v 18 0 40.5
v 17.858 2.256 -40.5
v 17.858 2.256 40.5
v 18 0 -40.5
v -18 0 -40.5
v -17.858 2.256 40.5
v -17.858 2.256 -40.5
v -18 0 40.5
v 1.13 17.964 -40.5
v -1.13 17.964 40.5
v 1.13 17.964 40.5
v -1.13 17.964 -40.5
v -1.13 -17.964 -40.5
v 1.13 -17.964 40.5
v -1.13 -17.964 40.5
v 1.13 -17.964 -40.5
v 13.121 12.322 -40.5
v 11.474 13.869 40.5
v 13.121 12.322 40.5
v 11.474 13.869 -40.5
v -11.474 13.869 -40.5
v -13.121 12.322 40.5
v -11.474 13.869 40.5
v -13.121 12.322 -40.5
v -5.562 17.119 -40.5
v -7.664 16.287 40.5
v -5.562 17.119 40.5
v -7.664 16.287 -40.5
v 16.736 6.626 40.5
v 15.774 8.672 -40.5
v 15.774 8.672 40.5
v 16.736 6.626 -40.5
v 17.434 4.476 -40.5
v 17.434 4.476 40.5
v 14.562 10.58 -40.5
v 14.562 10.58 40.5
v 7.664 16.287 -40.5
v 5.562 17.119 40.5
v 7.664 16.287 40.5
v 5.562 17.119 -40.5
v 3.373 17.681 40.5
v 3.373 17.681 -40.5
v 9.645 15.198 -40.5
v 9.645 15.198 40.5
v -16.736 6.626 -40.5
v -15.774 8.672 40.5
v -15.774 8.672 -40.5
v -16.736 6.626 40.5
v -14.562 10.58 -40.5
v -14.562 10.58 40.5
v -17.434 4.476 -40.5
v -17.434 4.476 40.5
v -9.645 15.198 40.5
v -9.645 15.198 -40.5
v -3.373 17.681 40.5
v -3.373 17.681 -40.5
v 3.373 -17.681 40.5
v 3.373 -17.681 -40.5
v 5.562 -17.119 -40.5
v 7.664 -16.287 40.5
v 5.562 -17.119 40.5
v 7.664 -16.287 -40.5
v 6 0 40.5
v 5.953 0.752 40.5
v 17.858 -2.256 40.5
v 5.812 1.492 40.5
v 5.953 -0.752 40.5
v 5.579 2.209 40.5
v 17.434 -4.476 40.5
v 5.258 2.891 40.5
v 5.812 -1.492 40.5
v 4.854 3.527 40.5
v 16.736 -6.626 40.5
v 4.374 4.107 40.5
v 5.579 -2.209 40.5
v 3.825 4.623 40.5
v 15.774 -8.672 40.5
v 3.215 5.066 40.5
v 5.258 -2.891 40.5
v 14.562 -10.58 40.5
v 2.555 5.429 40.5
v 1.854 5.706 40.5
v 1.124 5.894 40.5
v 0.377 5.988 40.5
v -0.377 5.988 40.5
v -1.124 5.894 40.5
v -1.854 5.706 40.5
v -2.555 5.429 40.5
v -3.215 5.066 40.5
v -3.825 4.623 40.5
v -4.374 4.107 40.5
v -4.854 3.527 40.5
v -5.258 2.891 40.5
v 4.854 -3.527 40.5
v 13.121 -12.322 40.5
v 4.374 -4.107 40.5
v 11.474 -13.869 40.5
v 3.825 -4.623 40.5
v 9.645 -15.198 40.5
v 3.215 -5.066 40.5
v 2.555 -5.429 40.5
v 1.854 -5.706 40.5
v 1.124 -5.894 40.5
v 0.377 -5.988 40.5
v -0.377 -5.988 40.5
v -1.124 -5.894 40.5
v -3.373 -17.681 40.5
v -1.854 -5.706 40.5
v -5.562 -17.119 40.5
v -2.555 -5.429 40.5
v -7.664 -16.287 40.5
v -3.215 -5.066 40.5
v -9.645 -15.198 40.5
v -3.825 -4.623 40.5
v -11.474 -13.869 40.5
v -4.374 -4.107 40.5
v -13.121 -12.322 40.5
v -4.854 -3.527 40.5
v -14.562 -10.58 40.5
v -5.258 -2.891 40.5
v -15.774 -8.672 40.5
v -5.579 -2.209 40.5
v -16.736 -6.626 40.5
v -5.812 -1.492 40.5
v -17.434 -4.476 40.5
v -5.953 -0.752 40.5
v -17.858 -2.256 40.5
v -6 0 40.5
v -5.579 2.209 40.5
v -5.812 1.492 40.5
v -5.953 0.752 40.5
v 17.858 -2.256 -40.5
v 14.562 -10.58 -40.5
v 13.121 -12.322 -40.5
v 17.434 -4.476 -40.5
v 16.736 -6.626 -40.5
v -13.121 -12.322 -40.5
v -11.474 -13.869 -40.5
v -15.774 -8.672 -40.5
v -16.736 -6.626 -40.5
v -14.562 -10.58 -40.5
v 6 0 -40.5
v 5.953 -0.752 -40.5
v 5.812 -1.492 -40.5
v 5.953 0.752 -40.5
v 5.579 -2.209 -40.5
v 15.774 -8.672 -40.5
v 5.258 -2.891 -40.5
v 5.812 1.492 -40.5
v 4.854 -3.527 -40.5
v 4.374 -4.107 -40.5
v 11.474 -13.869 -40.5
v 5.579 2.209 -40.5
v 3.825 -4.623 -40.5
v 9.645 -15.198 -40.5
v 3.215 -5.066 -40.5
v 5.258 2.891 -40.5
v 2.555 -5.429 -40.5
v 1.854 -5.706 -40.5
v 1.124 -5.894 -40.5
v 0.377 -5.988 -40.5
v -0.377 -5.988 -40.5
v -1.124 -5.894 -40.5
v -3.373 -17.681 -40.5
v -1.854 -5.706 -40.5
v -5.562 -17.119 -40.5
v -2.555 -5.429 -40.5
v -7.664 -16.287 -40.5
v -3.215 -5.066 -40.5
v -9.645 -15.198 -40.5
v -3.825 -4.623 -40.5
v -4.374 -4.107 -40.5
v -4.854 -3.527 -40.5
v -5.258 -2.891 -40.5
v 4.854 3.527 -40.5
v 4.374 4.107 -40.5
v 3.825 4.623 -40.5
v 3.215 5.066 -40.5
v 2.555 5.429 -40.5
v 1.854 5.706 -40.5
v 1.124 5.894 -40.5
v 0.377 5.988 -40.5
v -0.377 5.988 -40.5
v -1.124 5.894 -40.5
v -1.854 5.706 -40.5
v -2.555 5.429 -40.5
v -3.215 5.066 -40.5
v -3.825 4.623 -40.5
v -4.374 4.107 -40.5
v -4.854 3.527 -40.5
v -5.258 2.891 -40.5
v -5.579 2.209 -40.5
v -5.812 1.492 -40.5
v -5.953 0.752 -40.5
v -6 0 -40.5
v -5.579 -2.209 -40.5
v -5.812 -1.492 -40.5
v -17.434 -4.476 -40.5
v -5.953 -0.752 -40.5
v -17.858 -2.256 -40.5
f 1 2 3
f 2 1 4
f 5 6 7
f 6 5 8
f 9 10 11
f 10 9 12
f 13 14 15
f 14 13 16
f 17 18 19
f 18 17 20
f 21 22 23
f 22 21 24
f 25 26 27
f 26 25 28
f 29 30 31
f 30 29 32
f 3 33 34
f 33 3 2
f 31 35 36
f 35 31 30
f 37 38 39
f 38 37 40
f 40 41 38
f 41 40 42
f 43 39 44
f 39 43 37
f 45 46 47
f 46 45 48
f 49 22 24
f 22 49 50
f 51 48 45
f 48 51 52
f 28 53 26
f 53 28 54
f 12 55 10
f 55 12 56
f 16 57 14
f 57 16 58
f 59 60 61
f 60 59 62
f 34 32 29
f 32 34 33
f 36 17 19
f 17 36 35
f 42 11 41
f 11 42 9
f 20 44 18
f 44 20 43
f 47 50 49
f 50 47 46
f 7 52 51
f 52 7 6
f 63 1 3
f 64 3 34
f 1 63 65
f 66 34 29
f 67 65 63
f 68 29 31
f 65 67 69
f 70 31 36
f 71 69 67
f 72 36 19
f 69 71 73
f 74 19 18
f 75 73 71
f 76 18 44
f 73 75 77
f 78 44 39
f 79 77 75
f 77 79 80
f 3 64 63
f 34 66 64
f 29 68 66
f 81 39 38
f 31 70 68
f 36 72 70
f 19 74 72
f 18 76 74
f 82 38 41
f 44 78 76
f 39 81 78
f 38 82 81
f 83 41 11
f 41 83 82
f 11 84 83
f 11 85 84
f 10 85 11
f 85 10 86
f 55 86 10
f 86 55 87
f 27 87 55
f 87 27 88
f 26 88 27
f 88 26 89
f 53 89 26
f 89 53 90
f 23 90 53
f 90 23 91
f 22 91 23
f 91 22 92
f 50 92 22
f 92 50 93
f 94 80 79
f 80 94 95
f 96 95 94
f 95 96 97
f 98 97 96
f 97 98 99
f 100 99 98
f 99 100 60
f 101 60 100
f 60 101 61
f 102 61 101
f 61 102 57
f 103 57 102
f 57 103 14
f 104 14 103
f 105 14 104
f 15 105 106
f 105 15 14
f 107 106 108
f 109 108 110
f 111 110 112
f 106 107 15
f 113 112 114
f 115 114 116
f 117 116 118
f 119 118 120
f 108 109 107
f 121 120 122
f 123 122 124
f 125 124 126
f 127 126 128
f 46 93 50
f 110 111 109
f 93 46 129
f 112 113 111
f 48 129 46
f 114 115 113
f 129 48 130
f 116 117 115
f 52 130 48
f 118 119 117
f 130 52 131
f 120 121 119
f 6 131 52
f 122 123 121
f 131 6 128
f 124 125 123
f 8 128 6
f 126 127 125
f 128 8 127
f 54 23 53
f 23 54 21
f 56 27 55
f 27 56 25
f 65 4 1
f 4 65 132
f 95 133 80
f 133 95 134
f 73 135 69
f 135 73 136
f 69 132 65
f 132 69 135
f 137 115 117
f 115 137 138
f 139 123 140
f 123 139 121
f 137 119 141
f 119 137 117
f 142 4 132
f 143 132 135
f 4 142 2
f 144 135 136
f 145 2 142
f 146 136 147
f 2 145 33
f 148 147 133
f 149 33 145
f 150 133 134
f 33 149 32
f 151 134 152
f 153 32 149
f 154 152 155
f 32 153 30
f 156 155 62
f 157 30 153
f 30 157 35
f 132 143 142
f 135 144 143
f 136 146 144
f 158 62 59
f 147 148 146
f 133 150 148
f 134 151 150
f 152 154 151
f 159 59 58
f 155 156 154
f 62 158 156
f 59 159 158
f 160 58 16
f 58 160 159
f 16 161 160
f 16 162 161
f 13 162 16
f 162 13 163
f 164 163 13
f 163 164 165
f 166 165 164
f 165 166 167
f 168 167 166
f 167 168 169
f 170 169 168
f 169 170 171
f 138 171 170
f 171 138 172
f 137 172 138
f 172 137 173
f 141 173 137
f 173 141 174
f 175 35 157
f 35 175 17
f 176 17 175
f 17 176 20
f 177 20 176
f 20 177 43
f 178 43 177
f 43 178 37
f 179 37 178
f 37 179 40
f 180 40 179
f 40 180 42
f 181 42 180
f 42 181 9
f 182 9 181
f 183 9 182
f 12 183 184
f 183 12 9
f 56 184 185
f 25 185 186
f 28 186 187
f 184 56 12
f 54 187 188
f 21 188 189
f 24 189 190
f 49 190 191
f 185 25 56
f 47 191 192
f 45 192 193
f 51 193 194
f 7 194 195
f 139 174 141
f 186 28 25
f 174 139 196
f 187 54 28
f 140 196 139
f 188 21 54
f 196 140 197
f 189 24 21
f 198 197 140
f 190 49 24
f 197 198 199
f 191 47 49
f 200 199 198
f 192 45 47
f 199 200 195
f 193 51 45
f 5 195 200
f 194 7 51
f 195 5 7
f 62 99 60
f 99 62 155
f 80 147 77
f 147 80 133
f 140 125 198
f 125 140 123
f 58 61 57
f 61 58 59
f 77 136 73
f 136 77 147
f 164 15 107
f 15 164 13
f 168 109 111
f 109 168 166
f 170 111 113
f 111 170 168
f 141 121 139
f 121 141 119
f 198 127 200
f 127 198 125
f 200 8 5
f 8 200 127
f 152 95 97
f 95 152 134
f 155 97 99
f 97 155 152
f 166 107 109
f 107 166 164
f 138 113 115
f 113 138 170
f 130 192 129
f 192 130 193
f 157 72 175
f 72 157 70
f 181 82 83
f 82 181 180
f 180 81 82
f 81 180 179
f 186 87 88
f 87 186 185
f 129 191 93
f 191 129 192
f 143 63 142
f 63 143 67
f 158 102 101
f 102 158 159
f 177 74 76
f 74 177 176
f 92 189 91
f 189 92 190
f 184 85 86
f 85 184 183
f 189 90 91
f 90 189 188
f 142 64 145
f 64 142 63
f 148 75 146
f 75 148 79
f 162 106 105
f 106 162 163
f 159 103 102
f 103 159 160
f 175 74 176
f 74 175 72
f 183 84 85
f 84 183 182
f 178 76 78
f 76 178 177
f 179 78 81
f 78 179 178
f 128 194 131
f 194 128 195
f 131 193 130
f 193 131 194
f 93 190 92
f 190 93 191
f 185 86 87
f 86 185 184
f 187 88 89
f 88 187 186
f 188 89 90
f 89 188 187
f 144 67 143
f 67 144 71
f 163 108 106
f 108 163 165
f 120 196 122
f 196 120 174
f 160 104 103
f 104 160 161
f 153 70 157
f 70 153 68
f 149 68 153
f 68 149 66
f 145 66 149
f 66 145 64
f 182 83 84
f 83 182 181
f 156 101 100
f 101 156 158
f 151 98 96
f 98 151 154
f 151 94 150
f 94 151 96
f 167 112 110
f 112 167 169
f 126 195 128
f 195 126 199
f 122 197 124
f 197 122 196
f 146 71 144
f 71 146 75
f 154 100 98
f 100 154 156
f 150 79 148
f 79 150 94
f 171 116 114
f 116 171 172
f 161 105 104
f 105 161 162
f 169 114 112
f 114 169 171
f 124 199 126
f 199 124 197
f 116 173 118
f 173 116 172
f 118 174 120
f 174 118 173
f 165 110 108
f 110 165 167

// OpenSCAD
$fn = 50;


difference() {
	union() {
		translate(v = [0, 0, -40.5000000000]) {
			cylinder(h = 81, r = 18.0000000000);
		}
	}
	union() {
		translate(v = [0, 0, -100.0000000000]) {
			cylinder(h = 200, r = 6);
		}
	}
}
